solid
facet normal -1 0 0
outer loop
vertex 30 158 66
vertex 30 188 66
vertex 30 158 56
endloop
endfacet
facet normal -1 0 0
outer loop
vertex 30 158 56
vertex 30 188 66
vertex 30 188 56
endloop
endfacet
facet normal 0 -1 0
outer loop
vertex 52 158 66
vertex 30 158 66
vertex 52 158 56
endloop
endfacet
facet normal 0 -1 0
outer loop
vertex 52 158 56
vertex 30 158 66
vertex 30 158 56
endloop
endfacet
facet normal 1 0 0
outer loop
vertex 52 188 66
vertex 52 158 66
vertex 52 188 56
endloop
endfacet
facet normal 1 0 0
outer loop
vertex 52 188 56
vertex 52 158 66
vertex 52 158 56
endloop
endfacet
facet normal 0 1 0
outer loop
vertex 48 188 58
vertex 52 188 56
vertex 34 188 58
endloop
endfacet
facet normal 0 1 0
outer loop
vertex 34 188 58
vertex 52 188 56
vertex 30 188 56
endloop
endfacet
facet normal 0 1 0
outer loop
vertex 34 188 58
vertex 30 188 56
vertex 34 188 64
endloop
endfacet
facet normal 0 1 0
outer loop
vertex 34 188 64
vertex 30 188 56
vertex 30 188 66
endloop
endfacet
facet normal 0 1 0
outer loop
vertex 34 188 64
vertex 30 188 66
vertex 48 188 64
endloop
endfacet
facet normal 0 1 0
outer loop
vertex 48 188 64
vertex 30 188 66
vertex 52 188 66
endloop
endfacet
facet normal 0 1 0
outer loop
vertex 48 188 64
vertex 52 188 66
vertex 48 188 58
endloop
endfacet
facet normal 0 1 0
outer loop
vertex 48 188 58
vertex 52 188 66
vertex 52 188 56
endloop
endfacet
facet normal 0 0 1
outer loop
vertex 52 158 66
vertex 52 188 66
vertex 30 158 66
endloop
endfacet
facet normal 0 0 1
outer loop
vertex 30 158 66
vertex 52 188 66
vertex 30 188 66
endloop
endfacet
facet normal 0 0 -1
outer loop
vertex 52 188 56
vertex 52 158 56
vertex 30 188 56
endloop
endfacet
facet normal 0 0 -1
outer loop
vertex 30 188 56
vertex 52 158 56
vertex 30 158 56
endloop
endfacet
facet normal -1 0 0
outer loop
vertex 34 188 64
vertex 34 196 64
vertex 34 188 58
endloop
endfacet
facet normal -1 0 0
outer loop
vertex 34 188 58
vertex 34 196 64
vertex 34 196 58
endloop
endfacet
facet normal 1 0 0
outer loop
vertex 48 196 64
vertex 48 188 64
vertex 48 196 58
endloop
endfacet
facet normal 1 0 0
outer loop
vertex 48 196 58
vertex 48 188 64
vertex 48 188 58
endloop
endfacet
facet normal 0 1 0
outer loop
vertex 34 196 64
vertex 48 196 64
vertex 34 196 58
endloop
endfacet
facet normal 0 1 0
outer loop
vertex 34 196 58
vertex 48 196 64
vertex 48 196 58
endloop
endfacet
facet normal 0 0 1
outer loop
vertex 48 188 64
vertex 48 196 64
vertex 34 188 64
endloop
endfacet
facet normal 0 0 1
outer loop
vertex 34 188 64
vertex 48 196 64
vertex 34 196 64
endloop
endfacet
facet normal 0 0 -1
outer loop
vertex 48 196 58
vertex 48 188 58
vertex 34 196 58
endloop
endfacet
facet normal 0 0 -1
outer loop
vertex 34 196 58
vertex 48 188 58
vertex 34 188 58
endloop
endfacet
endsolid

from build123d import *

# Parameters (mm, degrees)
BOSS_EXTRUDE1_START = 56
SKETCH1_W           = 22
SKETCH1_H           = 30
BOSS_EXTRUDE1_DEPTH = 10
BOSS_EXTRUDE2_START = 58
SKETCH2_W           = 14
SKETCH2_H           = 8
BOSS_EXTRUDE2_DEPTH = 6


with BuildPart() as part:
    # Sketch1 → Boss-Extrude1 (new body)
    with BuildSketch(Plane.XY.offset(BOSS_EXTRUDE1_START)):
        with Locations((41, 173)):
            Rectangle(SKETCH1_W, SKETCH1_H)
    extrude(amount=BOSS_EXTRUDE1_DEPTH)

    # Sketch2 → Boss-Extrude2 (add)
    with BuildSketch(Plane.XY.offset(BOSS_EXTRUDE2_START)):
        with Locations((41, 192)):
            Rectangle(SKETCH2_W, SKETCH2_H)
    extrude(amount=BOSS_EXTRUDE2_DEPTH)


solid = part.part
